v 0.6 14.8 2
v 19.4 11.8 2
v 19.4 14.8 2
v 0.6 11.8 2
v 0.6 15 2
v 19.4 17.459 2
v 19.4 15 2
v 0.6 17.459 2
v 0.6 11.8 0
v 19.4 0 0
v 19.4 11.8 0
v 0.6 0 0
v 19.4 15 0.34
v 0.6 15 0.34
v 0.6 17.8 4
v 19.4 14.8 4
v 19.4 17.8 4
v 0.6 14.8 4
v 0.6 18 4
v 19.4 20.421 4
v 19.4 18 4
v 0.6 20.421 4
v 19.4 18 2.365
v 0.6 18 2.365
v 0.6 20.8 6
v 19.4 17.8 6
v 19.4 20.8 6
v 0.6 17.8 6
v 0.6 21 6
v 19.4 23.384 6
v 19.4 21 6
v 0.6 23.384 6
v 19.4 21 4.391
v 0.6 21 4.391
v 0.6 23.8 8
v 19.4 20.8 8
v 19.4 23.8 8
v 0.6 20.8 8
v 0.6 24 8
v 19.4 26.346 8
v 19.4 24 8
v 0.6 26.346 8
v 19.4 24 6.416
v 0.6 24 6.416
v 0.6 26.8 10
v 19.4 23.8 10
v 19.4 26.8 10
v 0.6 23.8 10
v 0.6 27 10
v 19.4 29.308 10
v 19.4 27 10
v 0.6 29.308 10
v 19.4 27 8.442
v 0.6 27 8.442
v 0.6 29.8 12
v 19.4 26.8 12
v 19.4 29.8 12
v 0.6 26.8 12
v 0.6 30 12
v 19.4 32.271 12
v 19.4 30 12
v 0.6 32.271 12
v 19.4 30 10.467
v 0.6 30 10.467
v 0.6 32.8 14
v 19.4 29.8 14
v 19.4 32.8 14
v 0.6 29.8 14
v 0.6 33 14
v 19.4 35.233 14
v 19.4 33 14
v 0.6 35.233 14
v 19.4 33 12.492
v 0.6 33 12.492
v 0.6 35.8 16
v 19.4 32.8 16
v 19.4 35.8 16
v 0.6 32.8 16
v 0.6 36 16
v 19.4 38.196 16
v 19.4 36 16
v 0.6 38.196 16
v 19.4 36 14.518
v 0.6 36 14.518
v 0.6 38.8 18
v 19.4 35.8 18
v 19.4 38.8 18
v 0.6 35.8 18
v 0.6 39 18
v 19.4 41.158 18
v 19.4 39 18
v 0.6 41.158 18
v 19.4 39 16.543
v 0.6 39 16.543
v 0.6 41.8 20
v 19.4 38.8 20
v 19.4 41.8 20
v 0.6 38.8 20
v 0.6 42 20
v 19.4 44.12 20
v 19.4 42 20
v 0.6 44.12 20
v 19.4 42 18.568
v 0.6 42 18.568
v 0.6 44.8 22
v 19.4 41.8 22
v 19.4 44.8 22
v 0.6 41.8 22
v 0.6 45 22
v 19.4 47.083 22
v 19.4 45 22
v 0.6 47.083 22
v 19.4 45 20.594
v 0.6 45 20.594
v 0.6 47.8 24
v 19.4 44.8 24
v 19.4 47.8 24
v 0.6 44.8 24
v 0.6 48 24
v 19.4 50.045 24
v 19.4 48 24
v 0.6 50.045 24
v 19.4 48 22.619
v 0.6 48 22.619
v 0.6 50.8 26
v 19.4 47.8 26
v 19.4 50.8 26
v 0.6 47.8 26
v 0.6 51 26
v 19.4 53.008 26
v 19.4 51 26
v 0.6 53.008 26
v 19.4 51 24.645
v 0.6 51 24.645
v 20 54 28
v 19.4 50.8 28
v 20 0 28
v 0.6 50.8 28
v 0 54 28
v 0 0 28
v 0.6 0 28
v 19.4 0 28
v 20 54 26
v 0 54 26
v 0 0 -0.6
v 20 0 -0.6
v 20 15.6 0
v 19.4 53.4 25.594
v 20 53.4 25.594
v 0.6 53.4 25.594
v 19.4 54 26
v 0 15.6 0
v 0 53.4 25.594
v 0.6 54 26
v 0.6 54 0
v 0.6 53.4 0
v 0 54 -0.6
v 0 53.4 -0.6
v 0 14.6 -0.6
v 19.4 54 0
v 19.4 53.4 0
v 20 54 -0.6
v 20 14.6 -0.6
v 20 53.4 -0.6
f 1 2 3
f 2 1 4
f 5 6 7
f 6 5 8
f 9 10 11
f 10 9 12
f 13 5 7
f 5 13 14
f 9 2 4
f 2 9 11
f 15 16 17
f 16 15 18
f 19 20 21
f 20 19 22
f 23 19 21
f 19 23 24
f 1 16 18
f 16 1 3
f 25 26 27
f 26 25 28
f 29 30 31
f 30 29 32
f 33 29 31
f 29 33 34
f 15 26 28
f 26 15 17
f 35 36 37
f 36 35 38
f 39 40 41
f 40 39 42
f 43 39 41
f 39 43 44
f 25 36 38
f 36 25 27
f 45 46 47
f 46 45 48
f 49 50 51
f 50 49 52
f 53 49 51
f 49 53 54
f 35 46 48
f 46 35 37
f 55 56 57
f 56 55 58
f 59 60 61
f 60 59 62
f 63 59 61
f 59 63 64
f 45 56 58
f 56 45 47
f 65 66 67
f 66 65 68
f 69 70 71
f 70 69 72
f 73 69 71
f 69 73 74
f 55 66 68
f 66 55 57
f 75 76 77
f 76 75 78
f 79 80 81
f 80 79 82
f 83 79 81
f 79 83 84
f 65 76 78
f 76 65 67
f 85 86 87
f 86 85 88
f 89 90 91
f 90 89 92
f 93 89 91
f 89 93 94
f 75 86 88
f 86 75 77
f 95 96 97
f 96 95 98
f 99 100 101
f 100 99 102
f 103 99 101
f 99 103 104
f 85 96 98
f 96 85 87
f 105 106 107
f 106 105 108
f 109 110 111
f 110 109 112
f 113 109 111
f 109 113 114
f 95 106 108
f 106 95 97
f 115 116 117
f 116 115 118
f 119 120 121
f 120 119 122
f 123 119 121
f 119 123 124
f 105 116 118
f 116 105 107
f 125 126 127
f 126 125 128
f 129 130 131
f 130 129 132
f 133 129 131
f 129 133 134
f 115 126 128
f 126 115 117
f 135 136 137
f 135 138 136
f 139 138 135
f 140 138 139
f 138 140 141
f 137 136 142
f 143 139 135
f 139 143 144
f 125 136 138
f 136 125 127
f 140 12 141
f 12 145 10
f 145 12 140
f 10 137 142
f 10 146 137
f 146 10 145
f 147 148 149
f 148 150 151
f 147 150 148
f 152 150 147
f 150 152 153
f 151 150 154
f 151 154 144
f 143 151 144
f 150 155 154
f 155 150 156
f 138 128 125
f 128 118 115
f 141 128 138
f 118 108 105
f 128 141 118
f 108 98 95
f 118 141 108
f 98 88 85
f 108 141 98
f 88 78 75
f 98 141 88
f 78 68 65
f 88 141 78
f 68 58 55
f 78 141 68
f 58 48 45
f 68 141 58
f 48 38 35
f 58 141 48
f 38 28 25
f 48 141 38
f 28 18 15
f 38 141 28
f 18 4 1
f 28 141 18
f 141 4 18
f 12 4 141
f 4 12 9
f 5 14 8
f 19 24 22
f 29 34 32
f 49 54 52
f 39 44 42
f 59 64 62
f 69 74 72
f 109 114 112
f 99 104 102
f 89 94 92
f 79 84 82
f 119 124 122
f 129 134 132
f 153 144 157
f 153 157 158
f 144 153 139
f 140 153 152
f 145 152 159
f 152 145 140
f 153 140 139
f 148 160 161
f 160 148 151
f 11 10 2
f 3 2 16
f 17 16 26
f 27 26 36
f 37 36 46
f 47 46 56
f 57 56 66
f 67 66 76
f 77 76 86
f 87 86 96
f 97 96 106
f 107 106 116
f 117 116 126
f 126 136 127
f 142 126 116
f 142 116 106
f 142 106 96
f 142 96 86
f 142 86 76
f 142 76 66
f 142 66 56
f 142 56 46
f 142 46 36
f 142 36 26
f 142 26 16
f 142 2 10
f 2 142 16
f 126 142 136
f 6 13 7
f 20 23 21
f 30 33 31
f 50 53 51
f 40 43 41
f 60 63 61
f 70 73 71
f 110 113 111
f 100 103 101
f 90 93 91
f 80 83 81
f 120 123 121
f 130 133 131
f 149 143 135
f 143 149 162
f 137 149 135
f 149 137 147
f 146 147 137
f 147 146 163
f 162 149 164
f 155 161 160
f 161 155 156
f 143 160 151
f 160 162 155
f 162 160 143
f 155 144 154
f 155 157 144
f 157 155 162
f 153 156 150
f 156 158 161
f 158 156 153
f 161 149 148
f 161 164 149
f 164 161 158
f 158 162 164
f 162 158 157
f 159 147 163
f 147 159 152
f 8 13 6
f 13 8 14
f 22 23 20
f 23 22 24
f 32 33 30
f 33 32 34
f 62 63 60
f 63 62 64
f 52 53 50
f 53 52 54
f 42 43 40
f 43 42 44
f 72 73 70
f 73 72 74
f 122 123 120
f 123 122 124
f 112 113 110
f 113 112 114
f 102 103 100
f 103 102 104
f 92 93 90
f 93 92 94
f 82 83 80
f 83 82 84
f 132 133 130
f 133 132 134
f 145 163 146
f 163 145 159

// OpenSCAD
// Globale Werte
// Stärke der Flächen (Wand, Boden)
wall = 0.6;

/* Das Marko stairs erstellt eine einfache Treppe mit seitlichen Mauern
 * Die Standardparamter sind eine Treppe mit 14 Stufen zu 3/2mm was
 * in etwa einem Stockwerk mit einer Treppe nach DIN entspricht.
 * l = horizontale Gesamtlänge der Treppe
 * w = Breite der Treppen (inkl. Wand)
 * h = Höhenunterschied (exklusive Bodenplatte)
 * n = Anzahl der Stufen
 * bl = Länge der Bodenplatte (0 = ohne)
 * bd = up: Wände nach oben, down = Wände nach unten
 * o = Überlappung der Treppenstufen, Standardwert = 0.2
 */
module stairs(l=42,w=20,h=28,n=14,bl=12,bd="up",o=0.2) {
	il = l/n;
	ih = h/n;

	if (bl != 0) {
		translate([0,0,-wall]) cube([w,bl+il-2*o,wall]);
	}
	translate([0,bl,0]) {
		// draw individual steps
		// move overlay units to inside to avoid edges in hull
		for(i=[0 : n-1]) translate([o,il*i-o,ih*i]) cube([w-2*o,il+o,ih]);
		hull() {
			if (bl != 0) {
				translate([0,il-o-wall,-wall]) cube([w,2*o,2*o]);
			}
			translate([0,il+o,0]) cube([w,2*o,2*o]);
			translate([0,l-2*o,h-ih]) cube([w,2*o,2*o]);
		}
		for (x = [0,w-wall]) {
			color([1,0,0]) hull() {
				translate([x,il,0]) cube(wall);
				translate([x,l-wall,h-ih]) cube(wall);
				translate([x,l-wall,h-wall]) cube(wall);
				if (bd == "up") {
					translate([x,-bl,h-wall]) cube(wall);
					translate([x,-bl,0]) cube(wall);
				} else {
					translate([x,l-wall,0]) cube(wall);
				}
			}
		}
		color([0,0,0.5]) translate([0,l-wall,0]) {
			cube([wall,wall,h]);
			translate([w-wall,0,0]) cube([wall,wall,h]);
			if (bl != 0) {
				translate([0,0,-wall]) cube([w,wall,wall]);
			} else {
				cube([w,wall,wall]);
			}
		}
	}

}

stairs();
//stairs(18,22,13,6,12);
/*translate([0,30,13]) stairs(18,width,13,6,8);
color([0.5,0,0]) {
	for (x = [0,width-wall]) {
		translate([x,0,13]) cube([wall,38,7+wall]);
		translate([x,12,20]) rotate(90,[0,0,1]) rotate(90,[1,0,0]) color([0,0,1]) linear_extrude(wall, false) polygon(points=[[0,0],[8,0],[8,5]]);
		 //cube([wall,8,5]);
		translate([x,20,20]) cube([wall,6,6]);
	}
}*/

/*
color([0,0.5,0]) {
	translate([0,0,20]) cube([width,25,wall]);
 	//translate([0,25,20]) rotate(-60,[1,0,0]) cube([width,wall,5]);
	translate([0,30,25-wall]) cube([width,2,wall]);
	hull() {
		translate([0,32-wall,25-wall]) cube([width,wall,wall]);
		translate([0,25-wall,20]) cube([width,wall,wall]);
	}
}*/
/*
color([0,0,0.5]) translate([0,56-wall,0]) {
	translate([0,0,0]) cube([width,wall,wall]);
	translate([0,0,0]) cube([wall,wall,26]);
	translate([width-wall,0,0]) cube([wall,wall,26]);
}*/
